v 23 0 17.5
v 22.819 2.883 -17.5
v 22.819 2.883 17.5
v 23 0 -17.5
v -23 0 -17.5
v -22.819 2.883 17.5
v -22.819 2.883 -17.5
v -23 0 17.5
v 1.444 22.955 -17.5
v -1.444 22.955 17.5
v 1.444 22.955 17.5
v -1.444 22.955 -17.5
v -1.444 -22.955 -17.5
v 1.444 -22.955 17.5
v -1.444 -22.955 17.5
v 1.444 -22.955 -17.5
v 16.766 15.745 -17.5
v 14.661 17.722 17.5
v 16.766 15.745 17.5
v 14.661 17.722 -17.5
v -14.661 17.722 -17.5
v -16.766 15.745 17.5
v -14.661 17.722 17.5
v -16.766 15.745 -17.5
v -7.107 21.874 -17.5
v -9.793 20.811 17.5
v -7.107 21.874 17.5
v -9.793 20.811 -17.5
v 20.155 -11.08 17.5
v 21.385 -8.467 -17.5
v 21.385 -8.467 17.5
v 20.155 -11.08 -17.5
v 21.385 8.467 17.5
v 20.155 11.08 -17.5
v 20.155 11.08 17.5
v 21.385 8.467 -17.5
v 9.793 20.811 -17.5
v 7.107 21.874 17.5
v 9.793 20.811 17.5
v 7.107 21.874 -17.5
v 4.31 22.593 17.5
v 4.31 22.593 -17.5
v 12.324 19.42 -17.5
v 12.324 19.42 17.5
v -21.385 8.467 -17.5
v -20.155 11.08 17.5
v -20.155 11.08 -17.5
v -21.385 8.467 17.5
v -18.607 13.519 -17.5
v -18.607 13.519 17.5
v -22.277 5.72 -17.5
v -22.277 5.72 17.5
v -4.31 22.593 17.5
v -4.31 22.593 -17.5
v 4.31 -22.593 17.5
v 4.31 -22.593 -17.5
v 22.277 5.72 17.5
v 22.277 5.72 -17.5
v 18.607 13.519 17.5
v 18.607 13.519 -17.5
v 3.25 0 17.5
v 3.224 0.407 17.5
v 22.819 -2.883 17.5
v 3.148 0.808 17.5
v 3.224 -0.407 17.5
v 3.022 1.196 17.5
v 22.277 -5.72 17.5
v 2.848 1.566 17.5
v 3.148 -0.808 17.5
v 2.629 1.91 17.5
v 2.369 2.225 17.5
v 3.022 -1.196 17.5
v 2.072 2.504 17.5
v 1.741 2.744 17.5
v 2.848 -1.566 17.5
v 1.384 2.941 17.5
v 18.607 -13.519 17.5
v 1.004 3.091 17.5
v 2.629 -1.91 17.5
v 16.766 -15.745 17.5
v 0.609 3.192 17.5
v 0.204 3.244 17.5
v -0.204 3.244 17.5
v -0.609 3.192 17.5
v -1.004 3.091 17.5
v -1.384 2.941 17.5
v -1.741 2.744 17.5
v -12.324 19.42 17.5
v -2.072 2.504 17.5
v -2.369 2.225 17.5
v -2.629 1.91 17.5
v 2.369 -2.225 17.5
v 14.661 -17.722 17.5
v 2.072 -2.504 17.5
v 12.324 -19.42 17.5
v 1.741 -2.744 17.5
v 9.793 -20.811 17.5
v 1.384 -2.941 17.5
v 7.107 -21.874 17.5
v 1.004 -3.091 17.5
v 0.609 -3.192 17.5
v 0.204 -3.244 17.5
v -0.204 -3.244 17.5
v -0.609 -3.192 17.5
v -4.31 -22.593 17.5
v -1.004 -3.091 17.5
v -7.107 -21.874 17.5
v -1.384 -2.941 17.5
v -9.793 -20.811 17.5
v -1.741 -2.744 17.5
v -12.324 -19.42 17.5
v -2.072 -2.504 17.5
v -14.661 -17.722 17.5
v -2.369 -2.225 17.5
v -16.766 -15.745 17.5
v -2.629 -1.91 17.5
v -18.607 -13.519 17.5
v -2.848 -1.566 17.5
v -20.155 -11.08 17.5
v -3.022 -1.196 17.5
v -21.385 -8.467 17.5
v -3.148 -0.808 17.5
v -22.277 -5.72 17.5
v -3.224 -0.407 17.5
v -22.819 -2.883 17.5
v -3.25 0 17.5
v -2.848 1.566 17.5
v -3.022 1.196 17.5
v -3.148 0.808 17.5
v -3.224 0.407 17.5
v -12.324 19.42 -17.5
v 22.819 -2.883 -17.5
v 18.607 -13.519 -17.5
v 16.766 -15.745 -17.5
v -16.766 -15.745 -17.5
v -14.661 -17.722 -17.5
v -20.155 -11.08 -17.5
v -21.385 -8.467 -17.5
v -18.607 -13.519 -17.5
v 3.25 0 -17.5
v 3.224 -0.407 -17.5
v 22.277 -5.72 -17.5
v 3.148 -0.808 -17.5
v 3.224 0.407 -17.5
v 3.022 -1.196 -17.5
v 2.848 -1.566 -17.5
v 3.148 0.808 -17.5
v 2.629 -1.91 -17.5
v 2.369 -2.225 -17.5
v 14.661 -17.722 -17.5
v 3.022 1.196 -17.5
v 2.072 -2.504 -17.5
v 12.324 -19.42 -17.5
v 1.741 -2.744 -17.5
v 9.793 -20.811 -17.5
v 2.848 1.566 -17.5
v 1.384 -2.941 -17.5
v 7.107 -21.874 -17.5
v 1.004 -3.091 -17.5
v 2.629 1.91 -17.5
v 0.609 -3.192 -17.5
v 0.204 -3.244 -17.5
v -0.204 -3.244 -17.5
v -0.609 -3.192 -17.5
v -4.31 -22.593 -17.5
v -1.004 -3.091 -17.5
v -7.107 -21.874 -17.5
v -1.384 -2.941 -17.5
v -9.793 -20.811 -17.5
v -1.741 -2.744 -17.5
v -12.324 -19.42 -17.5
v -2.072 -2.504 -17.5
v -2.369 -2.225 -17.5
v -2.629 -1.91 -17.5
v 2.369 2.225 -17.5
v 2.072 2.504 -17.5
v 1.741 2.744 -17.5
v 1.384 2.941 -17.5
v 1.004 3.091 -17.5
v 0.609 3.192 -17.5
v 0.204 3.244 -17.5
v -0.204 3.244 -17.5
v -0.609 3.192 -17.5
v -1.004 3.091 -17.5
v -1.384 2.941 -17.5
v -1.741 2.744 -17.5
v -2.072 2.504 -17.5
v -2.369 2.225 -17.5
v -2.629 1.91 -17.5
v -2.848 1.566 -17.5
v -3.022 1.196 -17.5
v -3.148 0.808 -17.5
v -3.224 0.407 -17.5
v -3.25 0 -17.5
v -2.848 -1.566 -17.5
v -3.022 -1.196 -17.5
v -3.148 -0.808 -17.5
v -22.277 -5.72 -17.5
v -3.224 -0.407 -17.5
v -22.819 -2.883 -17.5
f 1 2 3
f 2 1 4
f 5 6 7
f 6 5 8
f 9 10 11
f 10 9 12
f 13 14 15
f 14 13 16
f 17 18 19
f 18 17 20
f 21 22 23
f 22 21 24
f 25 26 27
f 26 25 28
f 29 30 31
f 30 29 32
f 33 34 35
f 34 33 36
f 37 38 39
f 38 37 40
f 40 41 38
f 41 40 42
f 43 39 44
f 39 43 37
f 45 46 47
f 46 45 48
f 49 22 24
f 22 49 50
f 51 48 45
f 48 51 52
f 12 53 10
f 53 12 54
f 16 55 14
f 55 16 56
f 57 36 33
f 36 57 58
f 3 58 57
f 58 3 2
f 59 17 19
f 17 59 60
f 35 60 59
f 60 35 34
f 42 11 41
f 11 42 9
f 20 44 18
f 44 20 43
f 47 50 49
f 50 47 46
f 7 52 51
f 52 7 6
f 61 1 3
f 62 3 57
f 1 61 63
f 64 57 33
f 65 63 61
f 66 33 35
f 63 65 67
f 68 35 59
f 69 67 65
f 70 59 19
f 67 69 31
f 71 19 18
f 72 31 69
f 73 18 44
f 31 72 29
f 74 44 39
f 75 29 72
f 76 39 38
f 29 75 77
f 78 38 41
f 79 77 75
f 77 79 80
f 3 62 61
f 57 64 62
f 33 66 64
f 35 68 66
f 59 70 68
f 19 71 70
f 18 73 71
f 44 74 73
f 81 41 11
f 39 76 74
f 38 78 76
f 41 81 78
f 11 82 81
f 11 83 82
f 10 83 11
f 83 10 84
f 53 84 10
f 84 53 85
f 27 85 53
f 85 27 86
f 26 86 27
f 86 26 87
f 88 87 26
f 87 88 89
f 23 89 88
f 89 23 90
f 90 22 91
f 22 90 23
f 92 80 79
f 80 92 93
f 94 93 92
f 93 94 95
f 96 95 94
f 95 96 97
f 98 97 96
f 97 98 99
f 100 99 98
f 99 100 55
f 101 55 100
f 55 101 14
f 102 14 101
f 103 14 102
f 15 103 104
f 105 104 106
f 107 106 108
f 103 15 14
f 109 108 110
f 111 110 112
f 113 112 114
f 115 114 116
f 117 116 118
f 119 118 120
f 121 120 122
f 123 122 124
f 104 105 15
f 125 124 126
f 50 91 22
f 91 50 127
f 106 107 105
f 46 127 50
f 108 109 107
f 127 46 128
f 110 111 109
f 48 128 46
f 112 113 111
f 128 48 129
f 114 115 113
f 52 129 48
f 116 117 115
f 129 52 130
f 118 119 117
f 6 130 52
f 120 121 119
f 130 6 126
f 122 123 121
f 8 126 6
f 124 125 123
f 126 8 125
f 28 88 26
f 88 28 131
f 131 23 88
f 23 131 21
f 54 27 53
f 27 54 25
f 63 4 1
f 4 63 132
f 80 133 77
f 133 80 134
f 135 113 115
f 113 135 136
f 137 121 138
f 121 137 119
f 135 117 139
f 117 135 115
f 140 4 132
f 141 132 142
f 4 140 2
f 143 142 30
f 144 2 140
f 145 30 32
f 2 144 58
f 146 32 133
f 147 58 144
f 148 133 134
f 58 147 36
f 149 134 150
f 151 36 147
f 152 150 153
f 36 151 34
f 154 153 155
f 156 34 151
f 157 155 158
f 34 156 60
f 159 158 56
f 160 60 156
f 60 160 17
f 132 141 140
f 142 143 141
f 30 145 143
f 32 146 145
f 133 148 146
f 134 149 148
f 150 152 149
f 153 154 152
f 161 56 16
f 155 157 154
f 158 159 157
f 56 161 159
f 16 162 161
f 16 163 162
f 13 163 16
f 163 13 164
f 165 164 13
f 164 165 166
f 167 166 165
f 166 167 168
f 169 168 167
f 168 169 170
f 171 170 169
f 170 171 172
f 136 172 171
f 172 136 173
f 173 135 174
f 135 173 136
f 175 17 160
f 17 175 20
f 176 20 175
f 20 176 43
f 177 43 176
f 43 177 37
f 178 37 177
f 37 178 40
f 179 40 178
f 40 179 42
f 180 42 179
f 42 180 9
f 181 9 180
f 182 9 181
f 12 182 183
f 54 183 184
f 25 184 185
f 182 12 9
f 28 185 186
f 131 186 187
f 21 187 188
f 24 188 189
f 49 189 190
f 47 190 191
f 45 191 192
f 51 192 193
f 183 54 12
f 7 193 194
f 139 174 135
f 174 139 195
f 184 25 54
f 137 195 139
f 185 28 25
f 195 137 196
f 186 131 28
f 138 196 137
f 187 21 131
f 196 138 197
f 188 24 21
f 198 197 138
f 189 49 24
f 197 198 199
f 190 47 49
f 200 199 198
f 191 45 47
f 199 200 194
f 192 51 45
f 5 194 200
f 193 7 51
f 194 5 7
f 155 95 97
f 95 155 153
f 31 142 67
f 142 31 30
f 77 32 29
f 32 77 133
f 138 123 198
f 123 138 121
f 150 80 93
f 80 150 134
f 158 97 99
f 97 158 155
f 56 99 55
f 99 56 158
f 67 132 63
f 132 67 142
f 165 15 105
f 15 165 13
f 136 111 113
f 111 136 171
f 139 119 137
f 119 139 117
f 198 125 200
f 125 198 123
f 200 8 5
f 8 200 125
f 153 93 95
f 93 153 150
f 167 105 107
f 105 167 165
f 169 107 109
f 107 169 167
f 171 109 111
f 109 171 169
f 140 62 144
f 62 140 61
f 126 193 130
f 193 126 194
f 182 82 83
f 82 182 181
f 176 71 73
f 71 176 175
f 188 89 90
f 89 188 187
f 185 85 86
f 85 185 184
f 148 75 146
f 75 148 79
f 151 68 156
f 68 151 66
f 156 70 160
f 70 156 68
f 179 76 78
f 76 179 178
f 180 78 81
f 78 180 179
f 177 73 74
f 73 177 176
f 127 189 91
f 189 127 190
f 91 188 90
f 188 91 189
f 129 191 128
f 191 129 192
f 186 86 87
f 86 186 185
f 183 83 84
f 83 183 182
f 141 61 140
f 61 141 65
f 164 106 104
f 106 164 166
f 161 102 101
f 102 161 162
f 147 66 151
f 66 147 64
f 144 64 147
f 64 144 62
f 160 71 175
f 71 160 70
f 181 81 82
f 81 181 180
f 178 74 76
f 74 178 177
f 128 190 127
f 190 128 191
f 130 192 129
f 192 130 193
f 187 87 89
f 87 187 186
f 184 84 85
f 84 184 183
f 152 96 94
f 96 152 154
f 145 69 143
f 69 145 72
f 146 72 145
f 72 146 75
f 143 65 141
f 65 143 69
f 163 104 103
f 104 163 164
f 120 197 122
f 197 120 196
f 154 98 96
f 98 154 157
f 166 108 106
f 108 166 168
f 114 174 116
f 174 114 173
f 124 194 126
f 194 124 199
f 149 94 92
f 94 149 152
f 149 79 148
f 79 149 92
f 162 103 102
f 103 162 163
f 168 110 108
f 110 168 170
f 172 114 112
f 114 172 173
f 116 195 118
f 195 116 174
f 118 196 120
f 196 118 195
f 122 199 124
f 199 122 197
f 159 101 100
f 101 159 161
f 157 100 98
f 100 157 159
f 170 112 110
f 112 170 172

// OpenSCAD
$fn = 50;


difference() {
	union() {
		translate(v = [0, 0, -17.5000000000]) {
			cylinder(h = 35, r = 23.0000000000);
		}
	}
	union() {
		translate(v = [0, 0, -100.0000000000]) {
			cylinder(h = 200, r = 3.2500000000);
		}
	}
}
